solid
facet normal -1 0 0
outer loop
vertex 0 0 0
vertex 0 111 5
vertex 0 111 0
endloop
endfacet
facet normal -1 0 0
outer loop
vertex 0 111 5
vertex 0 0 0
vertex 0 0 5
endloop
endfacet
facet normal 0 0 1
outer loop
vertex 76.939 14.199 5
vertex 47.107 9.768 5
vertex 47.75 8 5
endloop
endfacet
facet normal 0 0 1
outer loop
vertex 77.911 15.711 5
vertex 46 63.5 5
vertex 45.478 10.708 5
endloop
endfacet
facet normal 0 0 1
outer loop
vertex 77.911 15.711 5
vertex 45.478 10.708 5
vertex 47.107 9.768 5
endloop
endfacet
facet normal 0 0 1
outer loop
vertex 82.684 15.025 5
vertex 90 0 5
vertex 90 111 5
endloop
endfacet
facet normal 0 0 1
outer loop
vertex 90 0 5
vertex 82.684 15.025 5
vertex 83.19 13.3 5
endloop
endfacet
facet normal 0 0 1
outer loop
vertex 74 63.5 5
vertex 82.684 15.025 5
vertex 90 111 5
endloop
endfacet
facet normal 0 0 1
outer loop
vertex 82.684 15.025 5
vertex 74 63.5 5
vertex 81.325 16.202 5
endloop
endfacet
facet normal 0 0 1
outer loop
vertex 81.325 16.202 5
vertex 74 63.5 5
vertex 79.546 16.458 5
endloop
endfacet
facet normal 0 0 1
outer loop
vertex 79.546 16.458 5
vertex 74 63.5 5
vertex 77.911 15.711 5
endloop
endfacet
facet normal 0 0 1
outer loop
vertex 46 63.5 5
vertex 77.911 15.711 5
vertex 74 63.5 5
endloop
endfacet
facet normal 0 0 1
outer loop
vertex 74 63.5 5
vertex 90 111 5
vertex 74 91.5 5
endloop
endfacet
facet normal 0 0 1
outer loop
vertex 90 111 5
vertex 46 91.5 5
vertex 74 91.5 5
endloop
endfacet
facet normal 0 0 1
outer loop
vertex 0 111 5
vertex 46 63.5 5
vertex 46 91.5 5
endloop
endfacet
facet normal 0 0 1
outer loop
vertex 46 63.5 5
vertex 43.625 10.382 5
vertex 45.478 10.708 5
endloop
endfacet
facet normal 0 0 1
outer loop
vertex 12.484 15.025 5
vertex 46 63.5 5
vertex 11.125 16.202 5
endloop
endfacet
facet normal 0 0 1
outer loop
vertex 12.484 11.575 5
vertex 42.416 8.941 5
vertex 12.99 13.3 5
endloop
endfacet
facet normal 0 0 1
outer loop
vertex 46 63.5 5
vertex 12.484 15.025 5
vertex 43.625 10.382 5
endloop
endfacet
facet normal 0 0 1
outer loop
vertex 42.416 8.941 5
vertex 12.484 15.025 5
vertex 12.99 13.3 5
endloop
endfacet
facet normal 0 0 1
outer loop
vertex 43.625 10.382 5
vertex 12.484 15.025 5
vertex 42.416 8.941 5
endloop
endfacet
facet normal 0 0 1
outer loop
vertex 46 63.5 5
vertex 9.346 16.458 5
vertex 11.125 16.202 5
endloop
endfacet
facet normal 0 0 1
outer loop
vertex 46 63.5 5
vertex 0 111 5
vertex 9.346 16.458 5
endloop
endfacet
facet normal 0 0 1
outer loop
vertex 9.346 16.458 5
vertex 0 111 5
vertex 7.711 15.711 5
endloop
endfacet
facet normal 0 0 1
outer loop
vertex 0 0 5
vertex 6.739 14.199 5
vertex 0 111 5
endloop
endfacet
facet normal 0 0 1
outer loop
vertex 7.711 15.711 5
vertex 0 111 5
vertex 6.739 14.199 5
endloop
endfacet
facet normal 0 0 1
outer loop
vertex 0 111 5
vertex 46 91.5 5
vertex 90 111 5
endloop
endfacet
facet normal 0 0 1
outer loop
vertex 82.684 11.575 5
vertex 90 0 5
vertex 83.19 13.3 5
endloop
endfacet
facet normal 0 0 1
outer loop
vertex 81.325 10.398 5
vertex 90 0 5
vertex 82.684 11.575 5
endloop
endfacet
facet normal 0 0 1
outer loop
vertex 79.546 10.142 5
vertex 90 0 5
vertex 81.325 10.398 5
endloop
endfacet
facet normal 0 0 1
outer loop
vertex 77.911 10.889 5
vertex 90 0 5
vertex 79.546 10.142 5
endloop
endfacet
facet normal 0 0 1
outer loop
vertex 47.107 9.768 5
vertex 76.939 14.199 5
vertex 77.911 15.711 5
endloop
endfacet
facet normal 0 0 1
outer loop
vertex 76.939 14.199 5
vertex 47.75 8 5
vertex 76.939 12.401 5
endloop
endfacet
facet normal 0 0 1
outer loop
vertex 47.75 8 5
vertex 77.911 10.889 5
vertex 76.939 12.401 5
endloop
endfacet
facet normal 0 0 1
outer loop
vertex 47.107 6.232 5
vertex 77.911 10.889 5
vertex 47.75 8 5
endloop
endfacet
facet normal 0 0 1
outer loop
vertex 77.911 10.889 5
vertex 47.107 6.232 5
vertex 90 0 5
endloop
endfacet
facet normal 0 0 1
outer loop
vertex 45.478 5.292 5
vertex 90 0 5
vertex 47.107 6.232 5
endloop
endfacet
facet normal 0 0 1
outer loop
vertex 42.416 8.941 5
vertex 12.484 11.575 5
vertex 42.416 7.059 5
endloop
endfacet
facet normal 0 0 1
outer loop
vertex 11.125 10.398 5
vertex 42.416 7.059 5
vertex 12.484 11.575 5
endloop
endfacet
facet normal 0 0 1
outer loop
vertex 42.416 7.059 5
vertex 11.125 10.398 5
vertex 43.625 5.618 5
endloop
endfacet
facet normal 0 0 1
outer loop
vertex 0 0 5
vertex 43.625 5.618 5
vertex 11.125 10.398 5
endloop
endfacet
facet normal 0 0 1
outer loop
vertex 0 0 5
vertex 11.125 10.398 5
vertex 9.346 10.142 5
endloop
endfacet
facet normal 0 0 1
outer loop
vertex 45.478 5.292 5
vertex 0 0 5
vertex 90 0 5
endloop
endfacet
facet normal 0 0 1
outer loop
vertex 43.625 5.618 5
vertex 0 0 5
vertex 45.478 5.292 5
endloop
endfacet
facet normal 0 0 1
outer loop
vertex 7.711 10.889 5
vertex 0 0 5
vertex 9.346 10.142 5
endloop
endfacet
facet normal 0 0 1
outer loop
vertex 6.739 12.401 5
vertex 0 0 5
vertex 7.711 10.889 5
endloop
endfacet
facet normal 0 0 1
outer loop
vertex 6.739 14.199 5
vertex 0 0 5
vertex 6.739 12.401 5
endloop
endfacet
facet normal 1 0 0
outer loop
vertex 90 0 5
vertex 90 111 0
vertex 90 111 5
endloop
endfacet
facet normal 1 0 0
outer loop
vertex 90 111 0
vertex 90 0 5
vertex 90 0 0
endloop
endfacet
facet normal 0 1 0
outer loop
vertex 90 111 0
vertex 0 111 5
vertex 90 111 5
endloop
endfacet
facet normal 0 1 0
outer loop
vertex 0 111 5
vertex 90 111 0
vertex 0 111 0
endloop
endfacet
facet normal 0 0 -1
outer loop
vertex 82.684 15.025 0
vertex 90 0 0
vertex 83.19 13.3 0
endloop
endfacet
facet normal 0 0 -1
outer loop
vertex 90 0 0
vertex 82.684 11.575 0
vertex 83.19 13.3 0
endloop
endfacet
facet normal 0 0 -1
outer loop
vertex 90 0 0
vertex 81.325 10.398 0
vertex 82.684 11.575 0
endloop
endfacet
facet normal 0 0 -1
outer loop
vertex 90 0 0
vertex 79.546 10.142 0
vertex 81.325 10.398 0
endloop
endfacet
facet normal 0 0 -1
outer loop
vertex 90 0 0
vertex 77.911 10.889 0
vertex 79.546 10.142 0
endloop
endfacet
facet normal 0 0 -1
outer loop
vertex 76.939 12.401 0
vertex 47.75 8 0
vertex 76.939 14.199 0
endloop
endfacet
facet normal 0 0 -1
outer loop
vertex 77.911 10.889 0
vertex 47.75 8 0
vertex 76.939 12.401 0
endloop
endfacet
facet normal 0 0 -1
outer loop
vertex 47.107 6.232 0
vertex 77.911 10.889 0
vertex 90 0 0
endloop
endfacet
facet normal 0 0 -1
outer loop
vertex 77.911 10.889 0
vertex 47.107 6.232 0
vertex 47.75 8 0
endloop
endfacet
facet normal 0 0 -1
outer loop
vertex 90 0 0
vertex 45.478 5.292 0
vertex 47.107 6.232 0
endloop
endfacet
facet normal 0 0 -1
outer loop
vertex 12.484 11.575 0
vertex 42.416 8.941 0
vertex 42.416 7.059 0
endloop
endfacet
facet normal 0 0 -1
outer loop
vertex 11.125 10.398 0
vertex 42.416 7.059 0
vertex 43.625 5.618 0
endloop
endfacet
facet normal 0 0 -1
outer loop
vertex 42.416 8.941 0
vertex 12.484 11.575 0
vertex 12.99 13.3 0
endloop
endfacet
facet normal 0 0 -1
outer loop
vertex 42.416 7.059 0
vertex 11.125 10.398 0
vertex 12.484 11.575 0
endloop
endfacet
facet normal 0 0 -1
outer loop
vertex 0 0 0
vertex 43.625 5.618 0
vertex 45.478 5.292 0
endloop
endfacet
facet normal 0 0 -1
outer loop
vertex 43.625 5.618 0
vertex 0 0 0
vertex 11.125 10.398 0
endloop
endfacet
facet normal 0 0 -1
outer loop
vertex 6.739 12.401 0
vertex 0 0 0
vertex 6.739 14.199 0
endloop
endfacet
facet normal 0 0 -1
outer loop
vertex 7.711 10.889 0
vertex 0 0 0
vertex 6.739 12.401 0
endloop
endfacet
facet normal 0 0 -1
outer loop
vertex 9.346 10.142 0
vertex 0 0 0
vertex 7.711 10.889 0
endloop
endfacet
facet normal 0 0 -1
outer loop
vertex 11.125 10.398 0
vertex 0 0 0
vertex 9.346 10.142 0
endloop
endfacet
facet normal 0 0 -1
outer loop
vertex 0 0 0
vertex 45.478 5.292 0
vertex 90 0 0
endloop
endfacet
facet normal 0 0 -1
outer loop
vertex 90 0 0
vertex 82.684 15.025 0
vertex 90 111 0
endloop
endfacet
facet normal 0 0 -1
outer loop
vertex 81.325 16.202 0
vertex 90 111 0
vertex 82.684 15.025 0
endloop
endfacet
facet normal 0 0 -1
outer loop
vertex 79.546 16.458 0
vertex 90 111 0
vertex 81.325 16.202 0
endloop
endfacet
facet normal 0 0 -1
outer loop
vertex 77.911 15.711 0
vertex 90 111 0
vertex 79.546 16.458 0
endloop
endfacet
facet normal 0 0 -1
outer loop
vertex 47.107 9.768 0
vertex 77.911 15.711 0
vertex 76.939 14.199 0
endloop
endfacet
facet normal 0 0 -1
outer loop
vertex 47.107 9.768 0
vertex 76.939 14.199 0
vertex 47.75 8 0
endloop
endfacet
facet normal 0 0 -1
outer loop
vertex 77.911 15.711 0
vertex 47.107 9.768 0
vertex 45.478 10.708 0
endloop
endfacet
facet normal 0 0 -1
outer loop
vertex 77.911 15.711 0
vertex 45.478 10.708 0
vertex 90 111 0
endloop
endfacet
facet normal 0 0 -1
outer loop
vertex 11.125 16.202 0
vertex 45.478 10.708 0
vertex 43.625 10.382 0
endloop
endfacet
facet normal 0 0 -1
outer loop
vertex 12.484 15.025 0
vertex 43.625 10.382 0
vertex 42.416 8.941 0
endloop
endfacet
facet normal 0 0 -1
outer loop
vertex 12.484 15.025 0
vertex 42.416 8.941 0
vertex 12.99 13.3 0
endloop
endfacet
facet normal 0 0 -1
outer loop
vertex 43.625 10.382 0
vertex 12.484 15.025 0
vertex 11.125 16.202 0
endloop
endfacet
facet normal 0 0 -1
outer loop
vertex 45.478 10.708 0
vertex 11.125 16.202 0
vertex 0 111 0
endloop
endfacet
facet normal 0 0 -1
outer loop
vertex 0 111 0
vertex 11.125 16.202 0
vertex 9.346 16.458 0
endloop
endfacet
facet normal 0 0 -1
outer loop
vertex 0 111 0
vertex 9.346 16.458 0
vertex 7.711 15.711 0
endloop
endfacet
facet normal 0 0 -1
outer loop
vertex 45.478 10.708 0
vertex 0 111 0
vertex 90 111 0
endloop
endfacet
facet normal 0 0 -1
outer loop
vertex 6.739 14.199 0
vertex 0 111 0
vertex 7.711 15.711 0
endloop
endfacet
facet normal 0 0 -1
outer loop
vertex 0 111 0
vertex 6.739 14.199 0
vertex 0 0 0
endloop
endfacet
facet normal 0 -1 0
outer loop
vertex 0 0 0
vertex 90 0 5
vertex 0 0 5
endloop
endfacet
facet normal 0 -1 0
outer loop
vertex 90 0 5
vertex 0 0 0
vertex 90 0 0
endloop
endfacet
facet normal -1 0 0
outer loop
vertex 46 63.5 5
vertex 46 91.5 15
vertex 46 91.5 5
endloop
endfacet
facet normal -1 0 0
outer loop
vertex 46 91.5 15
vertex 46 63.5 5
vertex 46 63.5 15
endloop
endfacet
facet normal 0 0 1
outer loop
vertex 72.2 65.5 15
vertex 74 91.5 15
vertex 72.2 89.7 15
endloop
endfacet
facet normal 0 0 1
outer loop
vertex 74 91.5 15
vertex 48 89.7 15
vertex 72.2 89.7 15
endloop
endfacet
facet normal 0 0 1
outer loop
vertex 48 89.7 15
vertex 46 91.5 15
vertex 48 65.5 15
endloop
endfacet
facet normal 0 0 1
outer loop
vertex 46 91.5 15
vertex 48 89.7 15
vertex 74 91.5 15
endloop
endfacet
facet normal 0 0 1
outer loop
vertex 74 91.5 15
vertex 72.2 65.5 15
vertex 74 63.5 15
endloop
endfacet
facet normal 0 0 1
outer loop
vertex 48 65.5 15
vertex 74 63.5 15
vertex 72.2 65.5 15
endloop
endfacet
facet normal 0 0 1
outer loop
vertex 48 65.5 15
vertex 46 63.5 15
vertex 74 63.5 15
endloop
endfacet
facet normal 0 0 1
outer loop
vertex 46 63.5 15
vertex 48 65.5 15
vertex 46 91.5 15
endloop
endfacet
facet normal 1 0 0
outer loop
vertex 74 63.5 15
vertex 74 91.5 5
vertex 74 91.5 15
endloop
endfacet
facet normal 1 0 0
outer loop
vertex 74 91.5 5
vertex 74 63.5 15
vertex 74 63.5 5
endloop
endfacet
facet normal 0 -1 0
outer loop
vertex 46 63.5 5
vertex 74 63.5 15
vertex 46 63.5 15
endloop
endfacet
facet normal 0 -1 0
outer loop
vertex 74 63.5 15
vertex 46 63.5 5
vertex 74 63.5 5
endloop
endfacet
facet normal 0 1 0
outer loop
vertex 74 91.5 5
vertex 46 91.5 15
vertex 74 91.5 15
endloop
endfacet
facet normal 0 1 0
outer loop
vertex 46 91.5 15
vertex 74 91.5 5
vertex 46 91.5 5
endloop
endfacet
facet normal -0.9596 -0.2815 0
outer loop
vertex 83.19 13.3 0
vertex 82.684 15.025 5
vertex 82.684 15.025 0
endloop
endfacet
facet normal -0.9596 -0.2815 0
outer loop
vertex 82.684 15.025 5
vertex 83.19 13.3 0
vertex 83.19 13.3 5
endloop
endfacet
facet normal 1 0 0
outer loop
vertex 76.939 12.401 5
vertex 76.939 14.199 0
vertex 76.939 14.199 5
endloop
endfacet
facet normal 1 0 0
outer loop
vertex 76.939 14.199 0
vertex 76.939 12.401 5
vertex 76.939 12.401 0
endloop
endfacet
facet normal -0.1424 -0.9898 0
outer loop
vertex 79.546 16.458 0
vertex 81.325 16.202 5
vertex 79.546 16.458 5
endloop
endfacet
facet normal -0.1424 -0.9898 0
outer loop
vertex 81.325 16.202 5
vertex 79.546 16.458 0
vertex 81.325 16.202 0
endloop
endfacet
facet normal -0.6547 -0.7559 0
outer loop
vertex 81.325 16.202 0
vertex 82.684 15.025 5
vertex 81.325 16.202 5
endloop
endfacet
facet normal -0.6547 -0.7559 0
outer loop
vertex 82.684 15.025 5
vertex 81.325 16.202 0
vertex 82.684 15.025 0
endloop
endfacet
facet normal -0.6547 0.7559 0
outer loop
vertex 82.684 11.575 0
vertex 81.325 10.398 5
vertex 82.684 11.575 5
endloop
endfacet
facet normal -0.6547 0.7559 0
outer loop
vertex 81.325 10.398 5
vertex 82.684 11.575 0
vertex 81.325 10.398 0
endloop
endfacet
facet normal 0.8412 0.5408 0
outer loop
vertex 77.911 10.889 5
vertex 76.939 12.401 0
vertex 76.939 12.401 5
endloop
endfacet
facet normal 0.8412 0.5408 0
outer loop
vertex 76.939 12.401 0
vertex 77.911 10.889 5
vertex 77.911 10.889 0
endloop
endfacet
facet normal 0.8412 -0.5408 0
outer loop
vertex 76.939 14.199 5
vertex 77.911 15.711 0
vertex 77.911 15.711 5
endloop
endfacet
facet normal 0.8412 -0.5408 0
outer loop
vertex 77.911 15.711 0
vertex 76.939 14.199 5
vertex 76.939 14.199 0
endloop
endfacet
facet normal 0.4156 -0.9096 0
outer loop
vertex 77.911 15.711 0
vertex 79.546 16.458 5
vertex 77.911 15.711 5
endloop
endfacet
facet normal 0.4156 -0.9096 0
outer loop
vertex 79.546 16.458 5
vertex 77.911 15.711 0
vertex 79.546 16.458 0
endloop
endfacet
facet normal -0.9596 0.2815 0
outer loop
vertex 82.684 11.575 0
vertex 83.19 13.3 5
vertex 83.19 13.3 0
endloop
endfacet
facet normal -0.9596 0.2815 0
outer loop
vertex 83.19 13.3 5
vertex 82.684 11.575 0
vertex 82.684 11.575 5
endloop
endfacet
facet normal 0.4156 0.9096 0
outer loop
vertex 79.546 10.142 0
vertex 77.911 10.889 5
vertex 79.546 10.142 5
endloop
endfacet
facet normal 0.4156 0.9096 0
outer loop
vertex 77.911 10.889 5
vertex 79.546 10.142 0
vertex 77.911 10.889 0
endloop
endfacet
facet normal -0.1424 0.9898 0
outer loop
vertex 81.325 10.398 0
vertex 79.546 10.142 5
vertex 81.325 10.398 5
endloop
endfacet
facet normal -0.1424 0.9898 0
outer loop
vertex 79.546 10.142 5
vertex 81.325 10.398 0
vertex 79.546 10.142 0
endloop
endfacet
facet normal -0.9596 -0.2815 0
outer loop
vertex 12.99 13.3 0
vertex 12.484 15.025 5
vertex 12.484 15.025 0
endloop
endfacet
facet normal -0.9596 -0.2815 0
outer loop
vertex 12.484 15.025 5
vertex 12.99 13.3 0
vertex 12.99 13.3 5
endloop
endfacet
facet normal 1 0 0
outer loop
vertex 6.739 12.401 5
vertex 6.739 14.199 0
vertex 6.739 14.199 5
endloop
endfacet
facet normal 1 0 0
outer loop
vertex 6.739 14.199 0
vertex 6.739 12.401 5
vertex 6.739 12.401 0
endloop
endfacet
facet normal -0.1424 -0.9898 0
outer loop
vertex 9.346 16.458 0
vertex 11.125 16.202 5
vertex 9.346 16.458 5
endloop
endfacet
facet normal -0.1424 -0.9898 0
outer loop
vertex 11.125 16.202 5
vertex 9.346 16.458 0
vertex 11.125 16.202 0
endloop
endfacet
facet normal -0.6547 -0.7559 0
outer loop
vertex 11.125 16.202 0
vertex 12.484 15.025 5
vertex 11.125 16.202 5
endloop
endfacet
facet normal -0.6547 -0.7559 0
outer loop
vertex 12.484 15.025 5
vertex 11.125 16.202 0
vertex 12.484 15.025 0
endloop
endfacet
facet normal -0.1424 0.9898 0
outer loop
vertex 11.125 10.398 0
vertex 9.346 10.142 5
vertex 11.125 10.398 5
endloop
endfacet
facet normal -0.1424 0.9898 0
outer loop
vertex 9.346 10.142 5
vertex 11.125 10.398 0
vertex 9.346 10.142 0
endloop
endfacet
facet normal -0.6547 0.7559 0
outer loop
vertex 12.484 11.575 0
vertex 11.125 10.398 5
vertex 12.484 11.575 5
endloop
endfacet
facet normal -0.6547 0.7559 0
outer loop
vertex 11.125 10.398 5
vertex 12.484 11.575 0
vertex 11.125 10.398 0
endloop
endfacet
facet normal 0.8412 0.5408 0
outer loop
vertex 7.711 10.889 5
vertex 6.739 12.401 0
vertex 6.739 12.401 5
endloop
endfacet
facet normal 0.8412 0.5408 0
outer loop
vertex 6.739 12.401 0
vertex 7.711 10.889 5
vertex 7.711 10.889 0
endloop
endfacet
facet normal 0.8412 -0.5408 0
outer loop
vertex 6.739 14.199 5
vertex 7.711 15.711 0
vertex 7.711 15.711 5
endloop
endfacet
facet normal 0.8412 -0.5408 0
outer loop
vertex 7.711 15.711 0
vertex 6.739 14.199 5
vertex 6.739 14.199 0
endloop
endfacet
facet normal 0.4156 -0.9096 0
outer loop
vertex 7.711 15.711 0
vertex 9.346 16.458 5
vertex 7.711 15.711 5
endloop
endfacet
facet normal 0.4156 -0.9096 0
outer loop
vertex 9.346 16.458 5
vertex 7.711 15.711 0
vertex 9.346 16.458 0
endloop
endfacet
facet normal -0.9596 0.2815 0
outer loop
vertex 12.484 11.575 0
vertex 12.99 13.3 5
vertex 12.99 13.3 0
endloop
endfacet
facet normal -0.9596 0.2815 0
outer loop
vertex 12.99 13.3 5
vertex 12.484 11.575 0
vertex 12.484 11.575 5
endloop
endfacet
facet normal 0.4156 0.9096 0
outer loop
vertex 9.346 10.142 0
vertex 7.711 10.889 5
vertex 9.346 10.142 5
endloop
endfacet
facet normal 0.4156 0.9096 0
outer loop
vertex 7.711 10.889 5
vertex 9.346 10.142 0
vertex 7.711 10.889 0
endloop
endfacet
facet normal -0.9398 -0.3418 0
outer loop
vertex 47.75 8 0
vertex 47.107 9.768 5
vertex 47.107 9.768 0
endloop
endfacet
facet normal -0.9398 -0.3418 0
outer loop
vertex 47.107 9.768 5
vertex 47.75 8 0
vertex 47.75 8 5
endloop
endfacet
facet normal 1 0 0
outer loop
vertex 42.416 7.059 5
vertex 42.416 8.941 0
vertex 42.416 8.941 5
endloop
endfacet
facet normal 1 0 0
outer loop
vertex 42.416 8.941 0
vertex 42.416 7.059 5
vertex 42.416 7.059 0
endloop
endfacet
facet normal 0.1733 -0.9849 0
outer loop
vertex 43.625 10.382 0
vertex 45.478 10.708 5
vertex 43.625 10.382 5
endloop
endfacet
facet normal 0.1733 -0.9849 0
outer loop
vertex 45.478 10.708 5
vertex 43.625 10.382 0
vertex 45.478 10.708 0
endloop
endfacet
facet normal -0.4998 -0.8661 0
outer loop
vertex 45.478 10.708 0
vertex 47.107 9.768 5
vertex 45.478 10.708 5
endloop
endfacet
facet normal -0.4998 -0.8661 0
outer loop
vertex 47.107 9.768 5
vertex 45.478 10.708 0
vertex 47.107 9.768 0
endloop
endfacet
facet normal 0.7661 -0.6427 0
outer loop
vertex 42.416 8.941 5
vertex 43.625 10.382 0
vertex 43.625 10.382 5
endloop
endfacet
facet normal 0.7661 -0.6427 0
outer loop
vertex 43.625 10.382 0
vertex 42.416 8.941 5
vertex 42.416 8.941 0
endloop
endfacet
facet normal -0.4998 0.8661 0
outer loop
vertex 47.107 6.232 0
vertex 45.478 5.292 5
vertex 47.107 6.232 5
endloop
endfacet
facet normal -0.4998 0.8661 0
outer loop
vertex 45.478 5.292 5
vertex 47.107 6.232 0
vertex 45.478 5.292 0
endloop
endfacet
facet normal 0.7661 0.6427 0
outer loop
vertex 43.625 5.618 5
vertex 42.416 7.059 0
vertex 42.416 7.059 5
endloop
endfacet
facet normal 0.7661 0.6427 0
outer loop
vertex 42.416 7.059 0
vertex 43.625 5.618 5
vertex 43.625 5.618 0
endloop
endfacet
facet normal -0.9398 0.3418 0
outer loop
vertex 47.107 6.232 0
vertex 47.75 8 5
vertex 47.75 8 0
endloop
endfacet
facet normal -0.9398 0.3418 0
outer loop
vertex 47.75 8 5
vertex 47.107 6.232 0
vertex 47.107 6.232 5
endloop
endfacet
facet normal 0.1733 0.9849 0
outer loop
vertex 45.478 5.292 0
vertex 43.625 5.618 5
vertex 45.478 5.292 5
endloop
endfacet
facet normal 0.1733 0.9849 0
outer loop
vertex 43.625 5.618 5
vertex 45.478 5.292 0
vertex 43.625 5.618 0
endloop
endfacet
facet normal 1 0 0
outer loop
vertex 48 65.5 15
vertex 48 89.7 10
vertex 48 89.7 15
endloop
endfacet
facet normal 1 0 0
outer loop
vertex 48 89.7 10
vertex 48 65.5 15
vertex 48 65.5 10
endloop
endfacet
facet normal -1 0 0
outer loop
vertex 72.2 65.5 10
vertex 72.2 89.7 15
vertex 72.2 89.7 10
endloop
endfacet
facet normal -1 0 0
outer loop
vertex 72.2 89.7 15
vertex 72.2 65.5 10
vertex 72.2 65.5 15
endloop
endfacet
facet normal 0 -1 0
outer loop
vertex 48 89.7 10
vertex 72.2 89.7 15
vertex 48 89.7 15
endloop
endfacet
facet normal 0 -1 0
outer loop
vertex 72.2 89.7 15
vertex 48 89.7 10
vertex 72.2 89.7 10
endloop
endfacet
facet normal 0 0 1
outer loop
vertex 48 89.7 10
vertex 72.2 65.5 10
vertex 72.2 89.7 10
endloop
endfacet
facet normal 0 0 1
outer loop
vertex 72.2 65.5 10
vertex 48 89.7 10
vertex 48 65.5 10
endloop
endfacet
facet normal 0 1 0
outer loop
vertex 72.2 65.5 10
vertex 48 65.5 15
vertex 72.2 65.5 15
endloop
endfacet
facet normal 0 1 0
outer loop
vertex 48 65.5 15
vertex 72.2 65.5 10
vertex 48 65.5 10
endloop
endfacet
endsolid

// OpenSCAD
// Easy change stage for RF-6000 Spectrofluorophotometer

// Units are mm
// Parameters
base_width = 90; // left to right of the instrument, x
base_length = 111; // front to back of the instrument, y
base_height = 5; // top to bottom of the instrument, z
stage_base = 10; // z location of bottom of stage cut
post_width = 24; // square base
post_height = 10;

stage_x = 48;
stage_y = 65.5;
stage_d = 2;
xcorner = stage_x-stage_d; // location of mount cut
ycorner = stage_y-stage_d;

tolerance = 0.2; // for gaps to allow slide to pass

difference() {
    union() {
        rotate([0,0,0])
        translate([0,0,0])
        cube([base_width, base_length, base_height]);
        
        // Holder
        rotate([0,0,0])
        translate([xcorner,ycorner,base_height])
        cube([post_width+(2*stage_d), post_width+(2*stage_d), post_height]);
    }
    
    // Right anchor hole
    rotate([0,0,0])
    translate([80,13.3,-1])
    cylinder(h = 2+base_height, d = 6.38);
    
    // Left anchor hole
    rotate([0,0,0])
    translate([9.8,13.3,-1])
    cylinder(h = 2+base_height, d = 6.38);
    
    // Mounting screw
    rotate([0,0,0])
    translate([45,8,-1])
    cylinder(h = 2+base_height, d = 5.5);
    
    // Cutting out the stage
    rotate([0,0,0])
    translate([stage_x,stage_y,stage_base])
    cube([post_width+tolerance,post_width+tolerance,post_height]);
}
